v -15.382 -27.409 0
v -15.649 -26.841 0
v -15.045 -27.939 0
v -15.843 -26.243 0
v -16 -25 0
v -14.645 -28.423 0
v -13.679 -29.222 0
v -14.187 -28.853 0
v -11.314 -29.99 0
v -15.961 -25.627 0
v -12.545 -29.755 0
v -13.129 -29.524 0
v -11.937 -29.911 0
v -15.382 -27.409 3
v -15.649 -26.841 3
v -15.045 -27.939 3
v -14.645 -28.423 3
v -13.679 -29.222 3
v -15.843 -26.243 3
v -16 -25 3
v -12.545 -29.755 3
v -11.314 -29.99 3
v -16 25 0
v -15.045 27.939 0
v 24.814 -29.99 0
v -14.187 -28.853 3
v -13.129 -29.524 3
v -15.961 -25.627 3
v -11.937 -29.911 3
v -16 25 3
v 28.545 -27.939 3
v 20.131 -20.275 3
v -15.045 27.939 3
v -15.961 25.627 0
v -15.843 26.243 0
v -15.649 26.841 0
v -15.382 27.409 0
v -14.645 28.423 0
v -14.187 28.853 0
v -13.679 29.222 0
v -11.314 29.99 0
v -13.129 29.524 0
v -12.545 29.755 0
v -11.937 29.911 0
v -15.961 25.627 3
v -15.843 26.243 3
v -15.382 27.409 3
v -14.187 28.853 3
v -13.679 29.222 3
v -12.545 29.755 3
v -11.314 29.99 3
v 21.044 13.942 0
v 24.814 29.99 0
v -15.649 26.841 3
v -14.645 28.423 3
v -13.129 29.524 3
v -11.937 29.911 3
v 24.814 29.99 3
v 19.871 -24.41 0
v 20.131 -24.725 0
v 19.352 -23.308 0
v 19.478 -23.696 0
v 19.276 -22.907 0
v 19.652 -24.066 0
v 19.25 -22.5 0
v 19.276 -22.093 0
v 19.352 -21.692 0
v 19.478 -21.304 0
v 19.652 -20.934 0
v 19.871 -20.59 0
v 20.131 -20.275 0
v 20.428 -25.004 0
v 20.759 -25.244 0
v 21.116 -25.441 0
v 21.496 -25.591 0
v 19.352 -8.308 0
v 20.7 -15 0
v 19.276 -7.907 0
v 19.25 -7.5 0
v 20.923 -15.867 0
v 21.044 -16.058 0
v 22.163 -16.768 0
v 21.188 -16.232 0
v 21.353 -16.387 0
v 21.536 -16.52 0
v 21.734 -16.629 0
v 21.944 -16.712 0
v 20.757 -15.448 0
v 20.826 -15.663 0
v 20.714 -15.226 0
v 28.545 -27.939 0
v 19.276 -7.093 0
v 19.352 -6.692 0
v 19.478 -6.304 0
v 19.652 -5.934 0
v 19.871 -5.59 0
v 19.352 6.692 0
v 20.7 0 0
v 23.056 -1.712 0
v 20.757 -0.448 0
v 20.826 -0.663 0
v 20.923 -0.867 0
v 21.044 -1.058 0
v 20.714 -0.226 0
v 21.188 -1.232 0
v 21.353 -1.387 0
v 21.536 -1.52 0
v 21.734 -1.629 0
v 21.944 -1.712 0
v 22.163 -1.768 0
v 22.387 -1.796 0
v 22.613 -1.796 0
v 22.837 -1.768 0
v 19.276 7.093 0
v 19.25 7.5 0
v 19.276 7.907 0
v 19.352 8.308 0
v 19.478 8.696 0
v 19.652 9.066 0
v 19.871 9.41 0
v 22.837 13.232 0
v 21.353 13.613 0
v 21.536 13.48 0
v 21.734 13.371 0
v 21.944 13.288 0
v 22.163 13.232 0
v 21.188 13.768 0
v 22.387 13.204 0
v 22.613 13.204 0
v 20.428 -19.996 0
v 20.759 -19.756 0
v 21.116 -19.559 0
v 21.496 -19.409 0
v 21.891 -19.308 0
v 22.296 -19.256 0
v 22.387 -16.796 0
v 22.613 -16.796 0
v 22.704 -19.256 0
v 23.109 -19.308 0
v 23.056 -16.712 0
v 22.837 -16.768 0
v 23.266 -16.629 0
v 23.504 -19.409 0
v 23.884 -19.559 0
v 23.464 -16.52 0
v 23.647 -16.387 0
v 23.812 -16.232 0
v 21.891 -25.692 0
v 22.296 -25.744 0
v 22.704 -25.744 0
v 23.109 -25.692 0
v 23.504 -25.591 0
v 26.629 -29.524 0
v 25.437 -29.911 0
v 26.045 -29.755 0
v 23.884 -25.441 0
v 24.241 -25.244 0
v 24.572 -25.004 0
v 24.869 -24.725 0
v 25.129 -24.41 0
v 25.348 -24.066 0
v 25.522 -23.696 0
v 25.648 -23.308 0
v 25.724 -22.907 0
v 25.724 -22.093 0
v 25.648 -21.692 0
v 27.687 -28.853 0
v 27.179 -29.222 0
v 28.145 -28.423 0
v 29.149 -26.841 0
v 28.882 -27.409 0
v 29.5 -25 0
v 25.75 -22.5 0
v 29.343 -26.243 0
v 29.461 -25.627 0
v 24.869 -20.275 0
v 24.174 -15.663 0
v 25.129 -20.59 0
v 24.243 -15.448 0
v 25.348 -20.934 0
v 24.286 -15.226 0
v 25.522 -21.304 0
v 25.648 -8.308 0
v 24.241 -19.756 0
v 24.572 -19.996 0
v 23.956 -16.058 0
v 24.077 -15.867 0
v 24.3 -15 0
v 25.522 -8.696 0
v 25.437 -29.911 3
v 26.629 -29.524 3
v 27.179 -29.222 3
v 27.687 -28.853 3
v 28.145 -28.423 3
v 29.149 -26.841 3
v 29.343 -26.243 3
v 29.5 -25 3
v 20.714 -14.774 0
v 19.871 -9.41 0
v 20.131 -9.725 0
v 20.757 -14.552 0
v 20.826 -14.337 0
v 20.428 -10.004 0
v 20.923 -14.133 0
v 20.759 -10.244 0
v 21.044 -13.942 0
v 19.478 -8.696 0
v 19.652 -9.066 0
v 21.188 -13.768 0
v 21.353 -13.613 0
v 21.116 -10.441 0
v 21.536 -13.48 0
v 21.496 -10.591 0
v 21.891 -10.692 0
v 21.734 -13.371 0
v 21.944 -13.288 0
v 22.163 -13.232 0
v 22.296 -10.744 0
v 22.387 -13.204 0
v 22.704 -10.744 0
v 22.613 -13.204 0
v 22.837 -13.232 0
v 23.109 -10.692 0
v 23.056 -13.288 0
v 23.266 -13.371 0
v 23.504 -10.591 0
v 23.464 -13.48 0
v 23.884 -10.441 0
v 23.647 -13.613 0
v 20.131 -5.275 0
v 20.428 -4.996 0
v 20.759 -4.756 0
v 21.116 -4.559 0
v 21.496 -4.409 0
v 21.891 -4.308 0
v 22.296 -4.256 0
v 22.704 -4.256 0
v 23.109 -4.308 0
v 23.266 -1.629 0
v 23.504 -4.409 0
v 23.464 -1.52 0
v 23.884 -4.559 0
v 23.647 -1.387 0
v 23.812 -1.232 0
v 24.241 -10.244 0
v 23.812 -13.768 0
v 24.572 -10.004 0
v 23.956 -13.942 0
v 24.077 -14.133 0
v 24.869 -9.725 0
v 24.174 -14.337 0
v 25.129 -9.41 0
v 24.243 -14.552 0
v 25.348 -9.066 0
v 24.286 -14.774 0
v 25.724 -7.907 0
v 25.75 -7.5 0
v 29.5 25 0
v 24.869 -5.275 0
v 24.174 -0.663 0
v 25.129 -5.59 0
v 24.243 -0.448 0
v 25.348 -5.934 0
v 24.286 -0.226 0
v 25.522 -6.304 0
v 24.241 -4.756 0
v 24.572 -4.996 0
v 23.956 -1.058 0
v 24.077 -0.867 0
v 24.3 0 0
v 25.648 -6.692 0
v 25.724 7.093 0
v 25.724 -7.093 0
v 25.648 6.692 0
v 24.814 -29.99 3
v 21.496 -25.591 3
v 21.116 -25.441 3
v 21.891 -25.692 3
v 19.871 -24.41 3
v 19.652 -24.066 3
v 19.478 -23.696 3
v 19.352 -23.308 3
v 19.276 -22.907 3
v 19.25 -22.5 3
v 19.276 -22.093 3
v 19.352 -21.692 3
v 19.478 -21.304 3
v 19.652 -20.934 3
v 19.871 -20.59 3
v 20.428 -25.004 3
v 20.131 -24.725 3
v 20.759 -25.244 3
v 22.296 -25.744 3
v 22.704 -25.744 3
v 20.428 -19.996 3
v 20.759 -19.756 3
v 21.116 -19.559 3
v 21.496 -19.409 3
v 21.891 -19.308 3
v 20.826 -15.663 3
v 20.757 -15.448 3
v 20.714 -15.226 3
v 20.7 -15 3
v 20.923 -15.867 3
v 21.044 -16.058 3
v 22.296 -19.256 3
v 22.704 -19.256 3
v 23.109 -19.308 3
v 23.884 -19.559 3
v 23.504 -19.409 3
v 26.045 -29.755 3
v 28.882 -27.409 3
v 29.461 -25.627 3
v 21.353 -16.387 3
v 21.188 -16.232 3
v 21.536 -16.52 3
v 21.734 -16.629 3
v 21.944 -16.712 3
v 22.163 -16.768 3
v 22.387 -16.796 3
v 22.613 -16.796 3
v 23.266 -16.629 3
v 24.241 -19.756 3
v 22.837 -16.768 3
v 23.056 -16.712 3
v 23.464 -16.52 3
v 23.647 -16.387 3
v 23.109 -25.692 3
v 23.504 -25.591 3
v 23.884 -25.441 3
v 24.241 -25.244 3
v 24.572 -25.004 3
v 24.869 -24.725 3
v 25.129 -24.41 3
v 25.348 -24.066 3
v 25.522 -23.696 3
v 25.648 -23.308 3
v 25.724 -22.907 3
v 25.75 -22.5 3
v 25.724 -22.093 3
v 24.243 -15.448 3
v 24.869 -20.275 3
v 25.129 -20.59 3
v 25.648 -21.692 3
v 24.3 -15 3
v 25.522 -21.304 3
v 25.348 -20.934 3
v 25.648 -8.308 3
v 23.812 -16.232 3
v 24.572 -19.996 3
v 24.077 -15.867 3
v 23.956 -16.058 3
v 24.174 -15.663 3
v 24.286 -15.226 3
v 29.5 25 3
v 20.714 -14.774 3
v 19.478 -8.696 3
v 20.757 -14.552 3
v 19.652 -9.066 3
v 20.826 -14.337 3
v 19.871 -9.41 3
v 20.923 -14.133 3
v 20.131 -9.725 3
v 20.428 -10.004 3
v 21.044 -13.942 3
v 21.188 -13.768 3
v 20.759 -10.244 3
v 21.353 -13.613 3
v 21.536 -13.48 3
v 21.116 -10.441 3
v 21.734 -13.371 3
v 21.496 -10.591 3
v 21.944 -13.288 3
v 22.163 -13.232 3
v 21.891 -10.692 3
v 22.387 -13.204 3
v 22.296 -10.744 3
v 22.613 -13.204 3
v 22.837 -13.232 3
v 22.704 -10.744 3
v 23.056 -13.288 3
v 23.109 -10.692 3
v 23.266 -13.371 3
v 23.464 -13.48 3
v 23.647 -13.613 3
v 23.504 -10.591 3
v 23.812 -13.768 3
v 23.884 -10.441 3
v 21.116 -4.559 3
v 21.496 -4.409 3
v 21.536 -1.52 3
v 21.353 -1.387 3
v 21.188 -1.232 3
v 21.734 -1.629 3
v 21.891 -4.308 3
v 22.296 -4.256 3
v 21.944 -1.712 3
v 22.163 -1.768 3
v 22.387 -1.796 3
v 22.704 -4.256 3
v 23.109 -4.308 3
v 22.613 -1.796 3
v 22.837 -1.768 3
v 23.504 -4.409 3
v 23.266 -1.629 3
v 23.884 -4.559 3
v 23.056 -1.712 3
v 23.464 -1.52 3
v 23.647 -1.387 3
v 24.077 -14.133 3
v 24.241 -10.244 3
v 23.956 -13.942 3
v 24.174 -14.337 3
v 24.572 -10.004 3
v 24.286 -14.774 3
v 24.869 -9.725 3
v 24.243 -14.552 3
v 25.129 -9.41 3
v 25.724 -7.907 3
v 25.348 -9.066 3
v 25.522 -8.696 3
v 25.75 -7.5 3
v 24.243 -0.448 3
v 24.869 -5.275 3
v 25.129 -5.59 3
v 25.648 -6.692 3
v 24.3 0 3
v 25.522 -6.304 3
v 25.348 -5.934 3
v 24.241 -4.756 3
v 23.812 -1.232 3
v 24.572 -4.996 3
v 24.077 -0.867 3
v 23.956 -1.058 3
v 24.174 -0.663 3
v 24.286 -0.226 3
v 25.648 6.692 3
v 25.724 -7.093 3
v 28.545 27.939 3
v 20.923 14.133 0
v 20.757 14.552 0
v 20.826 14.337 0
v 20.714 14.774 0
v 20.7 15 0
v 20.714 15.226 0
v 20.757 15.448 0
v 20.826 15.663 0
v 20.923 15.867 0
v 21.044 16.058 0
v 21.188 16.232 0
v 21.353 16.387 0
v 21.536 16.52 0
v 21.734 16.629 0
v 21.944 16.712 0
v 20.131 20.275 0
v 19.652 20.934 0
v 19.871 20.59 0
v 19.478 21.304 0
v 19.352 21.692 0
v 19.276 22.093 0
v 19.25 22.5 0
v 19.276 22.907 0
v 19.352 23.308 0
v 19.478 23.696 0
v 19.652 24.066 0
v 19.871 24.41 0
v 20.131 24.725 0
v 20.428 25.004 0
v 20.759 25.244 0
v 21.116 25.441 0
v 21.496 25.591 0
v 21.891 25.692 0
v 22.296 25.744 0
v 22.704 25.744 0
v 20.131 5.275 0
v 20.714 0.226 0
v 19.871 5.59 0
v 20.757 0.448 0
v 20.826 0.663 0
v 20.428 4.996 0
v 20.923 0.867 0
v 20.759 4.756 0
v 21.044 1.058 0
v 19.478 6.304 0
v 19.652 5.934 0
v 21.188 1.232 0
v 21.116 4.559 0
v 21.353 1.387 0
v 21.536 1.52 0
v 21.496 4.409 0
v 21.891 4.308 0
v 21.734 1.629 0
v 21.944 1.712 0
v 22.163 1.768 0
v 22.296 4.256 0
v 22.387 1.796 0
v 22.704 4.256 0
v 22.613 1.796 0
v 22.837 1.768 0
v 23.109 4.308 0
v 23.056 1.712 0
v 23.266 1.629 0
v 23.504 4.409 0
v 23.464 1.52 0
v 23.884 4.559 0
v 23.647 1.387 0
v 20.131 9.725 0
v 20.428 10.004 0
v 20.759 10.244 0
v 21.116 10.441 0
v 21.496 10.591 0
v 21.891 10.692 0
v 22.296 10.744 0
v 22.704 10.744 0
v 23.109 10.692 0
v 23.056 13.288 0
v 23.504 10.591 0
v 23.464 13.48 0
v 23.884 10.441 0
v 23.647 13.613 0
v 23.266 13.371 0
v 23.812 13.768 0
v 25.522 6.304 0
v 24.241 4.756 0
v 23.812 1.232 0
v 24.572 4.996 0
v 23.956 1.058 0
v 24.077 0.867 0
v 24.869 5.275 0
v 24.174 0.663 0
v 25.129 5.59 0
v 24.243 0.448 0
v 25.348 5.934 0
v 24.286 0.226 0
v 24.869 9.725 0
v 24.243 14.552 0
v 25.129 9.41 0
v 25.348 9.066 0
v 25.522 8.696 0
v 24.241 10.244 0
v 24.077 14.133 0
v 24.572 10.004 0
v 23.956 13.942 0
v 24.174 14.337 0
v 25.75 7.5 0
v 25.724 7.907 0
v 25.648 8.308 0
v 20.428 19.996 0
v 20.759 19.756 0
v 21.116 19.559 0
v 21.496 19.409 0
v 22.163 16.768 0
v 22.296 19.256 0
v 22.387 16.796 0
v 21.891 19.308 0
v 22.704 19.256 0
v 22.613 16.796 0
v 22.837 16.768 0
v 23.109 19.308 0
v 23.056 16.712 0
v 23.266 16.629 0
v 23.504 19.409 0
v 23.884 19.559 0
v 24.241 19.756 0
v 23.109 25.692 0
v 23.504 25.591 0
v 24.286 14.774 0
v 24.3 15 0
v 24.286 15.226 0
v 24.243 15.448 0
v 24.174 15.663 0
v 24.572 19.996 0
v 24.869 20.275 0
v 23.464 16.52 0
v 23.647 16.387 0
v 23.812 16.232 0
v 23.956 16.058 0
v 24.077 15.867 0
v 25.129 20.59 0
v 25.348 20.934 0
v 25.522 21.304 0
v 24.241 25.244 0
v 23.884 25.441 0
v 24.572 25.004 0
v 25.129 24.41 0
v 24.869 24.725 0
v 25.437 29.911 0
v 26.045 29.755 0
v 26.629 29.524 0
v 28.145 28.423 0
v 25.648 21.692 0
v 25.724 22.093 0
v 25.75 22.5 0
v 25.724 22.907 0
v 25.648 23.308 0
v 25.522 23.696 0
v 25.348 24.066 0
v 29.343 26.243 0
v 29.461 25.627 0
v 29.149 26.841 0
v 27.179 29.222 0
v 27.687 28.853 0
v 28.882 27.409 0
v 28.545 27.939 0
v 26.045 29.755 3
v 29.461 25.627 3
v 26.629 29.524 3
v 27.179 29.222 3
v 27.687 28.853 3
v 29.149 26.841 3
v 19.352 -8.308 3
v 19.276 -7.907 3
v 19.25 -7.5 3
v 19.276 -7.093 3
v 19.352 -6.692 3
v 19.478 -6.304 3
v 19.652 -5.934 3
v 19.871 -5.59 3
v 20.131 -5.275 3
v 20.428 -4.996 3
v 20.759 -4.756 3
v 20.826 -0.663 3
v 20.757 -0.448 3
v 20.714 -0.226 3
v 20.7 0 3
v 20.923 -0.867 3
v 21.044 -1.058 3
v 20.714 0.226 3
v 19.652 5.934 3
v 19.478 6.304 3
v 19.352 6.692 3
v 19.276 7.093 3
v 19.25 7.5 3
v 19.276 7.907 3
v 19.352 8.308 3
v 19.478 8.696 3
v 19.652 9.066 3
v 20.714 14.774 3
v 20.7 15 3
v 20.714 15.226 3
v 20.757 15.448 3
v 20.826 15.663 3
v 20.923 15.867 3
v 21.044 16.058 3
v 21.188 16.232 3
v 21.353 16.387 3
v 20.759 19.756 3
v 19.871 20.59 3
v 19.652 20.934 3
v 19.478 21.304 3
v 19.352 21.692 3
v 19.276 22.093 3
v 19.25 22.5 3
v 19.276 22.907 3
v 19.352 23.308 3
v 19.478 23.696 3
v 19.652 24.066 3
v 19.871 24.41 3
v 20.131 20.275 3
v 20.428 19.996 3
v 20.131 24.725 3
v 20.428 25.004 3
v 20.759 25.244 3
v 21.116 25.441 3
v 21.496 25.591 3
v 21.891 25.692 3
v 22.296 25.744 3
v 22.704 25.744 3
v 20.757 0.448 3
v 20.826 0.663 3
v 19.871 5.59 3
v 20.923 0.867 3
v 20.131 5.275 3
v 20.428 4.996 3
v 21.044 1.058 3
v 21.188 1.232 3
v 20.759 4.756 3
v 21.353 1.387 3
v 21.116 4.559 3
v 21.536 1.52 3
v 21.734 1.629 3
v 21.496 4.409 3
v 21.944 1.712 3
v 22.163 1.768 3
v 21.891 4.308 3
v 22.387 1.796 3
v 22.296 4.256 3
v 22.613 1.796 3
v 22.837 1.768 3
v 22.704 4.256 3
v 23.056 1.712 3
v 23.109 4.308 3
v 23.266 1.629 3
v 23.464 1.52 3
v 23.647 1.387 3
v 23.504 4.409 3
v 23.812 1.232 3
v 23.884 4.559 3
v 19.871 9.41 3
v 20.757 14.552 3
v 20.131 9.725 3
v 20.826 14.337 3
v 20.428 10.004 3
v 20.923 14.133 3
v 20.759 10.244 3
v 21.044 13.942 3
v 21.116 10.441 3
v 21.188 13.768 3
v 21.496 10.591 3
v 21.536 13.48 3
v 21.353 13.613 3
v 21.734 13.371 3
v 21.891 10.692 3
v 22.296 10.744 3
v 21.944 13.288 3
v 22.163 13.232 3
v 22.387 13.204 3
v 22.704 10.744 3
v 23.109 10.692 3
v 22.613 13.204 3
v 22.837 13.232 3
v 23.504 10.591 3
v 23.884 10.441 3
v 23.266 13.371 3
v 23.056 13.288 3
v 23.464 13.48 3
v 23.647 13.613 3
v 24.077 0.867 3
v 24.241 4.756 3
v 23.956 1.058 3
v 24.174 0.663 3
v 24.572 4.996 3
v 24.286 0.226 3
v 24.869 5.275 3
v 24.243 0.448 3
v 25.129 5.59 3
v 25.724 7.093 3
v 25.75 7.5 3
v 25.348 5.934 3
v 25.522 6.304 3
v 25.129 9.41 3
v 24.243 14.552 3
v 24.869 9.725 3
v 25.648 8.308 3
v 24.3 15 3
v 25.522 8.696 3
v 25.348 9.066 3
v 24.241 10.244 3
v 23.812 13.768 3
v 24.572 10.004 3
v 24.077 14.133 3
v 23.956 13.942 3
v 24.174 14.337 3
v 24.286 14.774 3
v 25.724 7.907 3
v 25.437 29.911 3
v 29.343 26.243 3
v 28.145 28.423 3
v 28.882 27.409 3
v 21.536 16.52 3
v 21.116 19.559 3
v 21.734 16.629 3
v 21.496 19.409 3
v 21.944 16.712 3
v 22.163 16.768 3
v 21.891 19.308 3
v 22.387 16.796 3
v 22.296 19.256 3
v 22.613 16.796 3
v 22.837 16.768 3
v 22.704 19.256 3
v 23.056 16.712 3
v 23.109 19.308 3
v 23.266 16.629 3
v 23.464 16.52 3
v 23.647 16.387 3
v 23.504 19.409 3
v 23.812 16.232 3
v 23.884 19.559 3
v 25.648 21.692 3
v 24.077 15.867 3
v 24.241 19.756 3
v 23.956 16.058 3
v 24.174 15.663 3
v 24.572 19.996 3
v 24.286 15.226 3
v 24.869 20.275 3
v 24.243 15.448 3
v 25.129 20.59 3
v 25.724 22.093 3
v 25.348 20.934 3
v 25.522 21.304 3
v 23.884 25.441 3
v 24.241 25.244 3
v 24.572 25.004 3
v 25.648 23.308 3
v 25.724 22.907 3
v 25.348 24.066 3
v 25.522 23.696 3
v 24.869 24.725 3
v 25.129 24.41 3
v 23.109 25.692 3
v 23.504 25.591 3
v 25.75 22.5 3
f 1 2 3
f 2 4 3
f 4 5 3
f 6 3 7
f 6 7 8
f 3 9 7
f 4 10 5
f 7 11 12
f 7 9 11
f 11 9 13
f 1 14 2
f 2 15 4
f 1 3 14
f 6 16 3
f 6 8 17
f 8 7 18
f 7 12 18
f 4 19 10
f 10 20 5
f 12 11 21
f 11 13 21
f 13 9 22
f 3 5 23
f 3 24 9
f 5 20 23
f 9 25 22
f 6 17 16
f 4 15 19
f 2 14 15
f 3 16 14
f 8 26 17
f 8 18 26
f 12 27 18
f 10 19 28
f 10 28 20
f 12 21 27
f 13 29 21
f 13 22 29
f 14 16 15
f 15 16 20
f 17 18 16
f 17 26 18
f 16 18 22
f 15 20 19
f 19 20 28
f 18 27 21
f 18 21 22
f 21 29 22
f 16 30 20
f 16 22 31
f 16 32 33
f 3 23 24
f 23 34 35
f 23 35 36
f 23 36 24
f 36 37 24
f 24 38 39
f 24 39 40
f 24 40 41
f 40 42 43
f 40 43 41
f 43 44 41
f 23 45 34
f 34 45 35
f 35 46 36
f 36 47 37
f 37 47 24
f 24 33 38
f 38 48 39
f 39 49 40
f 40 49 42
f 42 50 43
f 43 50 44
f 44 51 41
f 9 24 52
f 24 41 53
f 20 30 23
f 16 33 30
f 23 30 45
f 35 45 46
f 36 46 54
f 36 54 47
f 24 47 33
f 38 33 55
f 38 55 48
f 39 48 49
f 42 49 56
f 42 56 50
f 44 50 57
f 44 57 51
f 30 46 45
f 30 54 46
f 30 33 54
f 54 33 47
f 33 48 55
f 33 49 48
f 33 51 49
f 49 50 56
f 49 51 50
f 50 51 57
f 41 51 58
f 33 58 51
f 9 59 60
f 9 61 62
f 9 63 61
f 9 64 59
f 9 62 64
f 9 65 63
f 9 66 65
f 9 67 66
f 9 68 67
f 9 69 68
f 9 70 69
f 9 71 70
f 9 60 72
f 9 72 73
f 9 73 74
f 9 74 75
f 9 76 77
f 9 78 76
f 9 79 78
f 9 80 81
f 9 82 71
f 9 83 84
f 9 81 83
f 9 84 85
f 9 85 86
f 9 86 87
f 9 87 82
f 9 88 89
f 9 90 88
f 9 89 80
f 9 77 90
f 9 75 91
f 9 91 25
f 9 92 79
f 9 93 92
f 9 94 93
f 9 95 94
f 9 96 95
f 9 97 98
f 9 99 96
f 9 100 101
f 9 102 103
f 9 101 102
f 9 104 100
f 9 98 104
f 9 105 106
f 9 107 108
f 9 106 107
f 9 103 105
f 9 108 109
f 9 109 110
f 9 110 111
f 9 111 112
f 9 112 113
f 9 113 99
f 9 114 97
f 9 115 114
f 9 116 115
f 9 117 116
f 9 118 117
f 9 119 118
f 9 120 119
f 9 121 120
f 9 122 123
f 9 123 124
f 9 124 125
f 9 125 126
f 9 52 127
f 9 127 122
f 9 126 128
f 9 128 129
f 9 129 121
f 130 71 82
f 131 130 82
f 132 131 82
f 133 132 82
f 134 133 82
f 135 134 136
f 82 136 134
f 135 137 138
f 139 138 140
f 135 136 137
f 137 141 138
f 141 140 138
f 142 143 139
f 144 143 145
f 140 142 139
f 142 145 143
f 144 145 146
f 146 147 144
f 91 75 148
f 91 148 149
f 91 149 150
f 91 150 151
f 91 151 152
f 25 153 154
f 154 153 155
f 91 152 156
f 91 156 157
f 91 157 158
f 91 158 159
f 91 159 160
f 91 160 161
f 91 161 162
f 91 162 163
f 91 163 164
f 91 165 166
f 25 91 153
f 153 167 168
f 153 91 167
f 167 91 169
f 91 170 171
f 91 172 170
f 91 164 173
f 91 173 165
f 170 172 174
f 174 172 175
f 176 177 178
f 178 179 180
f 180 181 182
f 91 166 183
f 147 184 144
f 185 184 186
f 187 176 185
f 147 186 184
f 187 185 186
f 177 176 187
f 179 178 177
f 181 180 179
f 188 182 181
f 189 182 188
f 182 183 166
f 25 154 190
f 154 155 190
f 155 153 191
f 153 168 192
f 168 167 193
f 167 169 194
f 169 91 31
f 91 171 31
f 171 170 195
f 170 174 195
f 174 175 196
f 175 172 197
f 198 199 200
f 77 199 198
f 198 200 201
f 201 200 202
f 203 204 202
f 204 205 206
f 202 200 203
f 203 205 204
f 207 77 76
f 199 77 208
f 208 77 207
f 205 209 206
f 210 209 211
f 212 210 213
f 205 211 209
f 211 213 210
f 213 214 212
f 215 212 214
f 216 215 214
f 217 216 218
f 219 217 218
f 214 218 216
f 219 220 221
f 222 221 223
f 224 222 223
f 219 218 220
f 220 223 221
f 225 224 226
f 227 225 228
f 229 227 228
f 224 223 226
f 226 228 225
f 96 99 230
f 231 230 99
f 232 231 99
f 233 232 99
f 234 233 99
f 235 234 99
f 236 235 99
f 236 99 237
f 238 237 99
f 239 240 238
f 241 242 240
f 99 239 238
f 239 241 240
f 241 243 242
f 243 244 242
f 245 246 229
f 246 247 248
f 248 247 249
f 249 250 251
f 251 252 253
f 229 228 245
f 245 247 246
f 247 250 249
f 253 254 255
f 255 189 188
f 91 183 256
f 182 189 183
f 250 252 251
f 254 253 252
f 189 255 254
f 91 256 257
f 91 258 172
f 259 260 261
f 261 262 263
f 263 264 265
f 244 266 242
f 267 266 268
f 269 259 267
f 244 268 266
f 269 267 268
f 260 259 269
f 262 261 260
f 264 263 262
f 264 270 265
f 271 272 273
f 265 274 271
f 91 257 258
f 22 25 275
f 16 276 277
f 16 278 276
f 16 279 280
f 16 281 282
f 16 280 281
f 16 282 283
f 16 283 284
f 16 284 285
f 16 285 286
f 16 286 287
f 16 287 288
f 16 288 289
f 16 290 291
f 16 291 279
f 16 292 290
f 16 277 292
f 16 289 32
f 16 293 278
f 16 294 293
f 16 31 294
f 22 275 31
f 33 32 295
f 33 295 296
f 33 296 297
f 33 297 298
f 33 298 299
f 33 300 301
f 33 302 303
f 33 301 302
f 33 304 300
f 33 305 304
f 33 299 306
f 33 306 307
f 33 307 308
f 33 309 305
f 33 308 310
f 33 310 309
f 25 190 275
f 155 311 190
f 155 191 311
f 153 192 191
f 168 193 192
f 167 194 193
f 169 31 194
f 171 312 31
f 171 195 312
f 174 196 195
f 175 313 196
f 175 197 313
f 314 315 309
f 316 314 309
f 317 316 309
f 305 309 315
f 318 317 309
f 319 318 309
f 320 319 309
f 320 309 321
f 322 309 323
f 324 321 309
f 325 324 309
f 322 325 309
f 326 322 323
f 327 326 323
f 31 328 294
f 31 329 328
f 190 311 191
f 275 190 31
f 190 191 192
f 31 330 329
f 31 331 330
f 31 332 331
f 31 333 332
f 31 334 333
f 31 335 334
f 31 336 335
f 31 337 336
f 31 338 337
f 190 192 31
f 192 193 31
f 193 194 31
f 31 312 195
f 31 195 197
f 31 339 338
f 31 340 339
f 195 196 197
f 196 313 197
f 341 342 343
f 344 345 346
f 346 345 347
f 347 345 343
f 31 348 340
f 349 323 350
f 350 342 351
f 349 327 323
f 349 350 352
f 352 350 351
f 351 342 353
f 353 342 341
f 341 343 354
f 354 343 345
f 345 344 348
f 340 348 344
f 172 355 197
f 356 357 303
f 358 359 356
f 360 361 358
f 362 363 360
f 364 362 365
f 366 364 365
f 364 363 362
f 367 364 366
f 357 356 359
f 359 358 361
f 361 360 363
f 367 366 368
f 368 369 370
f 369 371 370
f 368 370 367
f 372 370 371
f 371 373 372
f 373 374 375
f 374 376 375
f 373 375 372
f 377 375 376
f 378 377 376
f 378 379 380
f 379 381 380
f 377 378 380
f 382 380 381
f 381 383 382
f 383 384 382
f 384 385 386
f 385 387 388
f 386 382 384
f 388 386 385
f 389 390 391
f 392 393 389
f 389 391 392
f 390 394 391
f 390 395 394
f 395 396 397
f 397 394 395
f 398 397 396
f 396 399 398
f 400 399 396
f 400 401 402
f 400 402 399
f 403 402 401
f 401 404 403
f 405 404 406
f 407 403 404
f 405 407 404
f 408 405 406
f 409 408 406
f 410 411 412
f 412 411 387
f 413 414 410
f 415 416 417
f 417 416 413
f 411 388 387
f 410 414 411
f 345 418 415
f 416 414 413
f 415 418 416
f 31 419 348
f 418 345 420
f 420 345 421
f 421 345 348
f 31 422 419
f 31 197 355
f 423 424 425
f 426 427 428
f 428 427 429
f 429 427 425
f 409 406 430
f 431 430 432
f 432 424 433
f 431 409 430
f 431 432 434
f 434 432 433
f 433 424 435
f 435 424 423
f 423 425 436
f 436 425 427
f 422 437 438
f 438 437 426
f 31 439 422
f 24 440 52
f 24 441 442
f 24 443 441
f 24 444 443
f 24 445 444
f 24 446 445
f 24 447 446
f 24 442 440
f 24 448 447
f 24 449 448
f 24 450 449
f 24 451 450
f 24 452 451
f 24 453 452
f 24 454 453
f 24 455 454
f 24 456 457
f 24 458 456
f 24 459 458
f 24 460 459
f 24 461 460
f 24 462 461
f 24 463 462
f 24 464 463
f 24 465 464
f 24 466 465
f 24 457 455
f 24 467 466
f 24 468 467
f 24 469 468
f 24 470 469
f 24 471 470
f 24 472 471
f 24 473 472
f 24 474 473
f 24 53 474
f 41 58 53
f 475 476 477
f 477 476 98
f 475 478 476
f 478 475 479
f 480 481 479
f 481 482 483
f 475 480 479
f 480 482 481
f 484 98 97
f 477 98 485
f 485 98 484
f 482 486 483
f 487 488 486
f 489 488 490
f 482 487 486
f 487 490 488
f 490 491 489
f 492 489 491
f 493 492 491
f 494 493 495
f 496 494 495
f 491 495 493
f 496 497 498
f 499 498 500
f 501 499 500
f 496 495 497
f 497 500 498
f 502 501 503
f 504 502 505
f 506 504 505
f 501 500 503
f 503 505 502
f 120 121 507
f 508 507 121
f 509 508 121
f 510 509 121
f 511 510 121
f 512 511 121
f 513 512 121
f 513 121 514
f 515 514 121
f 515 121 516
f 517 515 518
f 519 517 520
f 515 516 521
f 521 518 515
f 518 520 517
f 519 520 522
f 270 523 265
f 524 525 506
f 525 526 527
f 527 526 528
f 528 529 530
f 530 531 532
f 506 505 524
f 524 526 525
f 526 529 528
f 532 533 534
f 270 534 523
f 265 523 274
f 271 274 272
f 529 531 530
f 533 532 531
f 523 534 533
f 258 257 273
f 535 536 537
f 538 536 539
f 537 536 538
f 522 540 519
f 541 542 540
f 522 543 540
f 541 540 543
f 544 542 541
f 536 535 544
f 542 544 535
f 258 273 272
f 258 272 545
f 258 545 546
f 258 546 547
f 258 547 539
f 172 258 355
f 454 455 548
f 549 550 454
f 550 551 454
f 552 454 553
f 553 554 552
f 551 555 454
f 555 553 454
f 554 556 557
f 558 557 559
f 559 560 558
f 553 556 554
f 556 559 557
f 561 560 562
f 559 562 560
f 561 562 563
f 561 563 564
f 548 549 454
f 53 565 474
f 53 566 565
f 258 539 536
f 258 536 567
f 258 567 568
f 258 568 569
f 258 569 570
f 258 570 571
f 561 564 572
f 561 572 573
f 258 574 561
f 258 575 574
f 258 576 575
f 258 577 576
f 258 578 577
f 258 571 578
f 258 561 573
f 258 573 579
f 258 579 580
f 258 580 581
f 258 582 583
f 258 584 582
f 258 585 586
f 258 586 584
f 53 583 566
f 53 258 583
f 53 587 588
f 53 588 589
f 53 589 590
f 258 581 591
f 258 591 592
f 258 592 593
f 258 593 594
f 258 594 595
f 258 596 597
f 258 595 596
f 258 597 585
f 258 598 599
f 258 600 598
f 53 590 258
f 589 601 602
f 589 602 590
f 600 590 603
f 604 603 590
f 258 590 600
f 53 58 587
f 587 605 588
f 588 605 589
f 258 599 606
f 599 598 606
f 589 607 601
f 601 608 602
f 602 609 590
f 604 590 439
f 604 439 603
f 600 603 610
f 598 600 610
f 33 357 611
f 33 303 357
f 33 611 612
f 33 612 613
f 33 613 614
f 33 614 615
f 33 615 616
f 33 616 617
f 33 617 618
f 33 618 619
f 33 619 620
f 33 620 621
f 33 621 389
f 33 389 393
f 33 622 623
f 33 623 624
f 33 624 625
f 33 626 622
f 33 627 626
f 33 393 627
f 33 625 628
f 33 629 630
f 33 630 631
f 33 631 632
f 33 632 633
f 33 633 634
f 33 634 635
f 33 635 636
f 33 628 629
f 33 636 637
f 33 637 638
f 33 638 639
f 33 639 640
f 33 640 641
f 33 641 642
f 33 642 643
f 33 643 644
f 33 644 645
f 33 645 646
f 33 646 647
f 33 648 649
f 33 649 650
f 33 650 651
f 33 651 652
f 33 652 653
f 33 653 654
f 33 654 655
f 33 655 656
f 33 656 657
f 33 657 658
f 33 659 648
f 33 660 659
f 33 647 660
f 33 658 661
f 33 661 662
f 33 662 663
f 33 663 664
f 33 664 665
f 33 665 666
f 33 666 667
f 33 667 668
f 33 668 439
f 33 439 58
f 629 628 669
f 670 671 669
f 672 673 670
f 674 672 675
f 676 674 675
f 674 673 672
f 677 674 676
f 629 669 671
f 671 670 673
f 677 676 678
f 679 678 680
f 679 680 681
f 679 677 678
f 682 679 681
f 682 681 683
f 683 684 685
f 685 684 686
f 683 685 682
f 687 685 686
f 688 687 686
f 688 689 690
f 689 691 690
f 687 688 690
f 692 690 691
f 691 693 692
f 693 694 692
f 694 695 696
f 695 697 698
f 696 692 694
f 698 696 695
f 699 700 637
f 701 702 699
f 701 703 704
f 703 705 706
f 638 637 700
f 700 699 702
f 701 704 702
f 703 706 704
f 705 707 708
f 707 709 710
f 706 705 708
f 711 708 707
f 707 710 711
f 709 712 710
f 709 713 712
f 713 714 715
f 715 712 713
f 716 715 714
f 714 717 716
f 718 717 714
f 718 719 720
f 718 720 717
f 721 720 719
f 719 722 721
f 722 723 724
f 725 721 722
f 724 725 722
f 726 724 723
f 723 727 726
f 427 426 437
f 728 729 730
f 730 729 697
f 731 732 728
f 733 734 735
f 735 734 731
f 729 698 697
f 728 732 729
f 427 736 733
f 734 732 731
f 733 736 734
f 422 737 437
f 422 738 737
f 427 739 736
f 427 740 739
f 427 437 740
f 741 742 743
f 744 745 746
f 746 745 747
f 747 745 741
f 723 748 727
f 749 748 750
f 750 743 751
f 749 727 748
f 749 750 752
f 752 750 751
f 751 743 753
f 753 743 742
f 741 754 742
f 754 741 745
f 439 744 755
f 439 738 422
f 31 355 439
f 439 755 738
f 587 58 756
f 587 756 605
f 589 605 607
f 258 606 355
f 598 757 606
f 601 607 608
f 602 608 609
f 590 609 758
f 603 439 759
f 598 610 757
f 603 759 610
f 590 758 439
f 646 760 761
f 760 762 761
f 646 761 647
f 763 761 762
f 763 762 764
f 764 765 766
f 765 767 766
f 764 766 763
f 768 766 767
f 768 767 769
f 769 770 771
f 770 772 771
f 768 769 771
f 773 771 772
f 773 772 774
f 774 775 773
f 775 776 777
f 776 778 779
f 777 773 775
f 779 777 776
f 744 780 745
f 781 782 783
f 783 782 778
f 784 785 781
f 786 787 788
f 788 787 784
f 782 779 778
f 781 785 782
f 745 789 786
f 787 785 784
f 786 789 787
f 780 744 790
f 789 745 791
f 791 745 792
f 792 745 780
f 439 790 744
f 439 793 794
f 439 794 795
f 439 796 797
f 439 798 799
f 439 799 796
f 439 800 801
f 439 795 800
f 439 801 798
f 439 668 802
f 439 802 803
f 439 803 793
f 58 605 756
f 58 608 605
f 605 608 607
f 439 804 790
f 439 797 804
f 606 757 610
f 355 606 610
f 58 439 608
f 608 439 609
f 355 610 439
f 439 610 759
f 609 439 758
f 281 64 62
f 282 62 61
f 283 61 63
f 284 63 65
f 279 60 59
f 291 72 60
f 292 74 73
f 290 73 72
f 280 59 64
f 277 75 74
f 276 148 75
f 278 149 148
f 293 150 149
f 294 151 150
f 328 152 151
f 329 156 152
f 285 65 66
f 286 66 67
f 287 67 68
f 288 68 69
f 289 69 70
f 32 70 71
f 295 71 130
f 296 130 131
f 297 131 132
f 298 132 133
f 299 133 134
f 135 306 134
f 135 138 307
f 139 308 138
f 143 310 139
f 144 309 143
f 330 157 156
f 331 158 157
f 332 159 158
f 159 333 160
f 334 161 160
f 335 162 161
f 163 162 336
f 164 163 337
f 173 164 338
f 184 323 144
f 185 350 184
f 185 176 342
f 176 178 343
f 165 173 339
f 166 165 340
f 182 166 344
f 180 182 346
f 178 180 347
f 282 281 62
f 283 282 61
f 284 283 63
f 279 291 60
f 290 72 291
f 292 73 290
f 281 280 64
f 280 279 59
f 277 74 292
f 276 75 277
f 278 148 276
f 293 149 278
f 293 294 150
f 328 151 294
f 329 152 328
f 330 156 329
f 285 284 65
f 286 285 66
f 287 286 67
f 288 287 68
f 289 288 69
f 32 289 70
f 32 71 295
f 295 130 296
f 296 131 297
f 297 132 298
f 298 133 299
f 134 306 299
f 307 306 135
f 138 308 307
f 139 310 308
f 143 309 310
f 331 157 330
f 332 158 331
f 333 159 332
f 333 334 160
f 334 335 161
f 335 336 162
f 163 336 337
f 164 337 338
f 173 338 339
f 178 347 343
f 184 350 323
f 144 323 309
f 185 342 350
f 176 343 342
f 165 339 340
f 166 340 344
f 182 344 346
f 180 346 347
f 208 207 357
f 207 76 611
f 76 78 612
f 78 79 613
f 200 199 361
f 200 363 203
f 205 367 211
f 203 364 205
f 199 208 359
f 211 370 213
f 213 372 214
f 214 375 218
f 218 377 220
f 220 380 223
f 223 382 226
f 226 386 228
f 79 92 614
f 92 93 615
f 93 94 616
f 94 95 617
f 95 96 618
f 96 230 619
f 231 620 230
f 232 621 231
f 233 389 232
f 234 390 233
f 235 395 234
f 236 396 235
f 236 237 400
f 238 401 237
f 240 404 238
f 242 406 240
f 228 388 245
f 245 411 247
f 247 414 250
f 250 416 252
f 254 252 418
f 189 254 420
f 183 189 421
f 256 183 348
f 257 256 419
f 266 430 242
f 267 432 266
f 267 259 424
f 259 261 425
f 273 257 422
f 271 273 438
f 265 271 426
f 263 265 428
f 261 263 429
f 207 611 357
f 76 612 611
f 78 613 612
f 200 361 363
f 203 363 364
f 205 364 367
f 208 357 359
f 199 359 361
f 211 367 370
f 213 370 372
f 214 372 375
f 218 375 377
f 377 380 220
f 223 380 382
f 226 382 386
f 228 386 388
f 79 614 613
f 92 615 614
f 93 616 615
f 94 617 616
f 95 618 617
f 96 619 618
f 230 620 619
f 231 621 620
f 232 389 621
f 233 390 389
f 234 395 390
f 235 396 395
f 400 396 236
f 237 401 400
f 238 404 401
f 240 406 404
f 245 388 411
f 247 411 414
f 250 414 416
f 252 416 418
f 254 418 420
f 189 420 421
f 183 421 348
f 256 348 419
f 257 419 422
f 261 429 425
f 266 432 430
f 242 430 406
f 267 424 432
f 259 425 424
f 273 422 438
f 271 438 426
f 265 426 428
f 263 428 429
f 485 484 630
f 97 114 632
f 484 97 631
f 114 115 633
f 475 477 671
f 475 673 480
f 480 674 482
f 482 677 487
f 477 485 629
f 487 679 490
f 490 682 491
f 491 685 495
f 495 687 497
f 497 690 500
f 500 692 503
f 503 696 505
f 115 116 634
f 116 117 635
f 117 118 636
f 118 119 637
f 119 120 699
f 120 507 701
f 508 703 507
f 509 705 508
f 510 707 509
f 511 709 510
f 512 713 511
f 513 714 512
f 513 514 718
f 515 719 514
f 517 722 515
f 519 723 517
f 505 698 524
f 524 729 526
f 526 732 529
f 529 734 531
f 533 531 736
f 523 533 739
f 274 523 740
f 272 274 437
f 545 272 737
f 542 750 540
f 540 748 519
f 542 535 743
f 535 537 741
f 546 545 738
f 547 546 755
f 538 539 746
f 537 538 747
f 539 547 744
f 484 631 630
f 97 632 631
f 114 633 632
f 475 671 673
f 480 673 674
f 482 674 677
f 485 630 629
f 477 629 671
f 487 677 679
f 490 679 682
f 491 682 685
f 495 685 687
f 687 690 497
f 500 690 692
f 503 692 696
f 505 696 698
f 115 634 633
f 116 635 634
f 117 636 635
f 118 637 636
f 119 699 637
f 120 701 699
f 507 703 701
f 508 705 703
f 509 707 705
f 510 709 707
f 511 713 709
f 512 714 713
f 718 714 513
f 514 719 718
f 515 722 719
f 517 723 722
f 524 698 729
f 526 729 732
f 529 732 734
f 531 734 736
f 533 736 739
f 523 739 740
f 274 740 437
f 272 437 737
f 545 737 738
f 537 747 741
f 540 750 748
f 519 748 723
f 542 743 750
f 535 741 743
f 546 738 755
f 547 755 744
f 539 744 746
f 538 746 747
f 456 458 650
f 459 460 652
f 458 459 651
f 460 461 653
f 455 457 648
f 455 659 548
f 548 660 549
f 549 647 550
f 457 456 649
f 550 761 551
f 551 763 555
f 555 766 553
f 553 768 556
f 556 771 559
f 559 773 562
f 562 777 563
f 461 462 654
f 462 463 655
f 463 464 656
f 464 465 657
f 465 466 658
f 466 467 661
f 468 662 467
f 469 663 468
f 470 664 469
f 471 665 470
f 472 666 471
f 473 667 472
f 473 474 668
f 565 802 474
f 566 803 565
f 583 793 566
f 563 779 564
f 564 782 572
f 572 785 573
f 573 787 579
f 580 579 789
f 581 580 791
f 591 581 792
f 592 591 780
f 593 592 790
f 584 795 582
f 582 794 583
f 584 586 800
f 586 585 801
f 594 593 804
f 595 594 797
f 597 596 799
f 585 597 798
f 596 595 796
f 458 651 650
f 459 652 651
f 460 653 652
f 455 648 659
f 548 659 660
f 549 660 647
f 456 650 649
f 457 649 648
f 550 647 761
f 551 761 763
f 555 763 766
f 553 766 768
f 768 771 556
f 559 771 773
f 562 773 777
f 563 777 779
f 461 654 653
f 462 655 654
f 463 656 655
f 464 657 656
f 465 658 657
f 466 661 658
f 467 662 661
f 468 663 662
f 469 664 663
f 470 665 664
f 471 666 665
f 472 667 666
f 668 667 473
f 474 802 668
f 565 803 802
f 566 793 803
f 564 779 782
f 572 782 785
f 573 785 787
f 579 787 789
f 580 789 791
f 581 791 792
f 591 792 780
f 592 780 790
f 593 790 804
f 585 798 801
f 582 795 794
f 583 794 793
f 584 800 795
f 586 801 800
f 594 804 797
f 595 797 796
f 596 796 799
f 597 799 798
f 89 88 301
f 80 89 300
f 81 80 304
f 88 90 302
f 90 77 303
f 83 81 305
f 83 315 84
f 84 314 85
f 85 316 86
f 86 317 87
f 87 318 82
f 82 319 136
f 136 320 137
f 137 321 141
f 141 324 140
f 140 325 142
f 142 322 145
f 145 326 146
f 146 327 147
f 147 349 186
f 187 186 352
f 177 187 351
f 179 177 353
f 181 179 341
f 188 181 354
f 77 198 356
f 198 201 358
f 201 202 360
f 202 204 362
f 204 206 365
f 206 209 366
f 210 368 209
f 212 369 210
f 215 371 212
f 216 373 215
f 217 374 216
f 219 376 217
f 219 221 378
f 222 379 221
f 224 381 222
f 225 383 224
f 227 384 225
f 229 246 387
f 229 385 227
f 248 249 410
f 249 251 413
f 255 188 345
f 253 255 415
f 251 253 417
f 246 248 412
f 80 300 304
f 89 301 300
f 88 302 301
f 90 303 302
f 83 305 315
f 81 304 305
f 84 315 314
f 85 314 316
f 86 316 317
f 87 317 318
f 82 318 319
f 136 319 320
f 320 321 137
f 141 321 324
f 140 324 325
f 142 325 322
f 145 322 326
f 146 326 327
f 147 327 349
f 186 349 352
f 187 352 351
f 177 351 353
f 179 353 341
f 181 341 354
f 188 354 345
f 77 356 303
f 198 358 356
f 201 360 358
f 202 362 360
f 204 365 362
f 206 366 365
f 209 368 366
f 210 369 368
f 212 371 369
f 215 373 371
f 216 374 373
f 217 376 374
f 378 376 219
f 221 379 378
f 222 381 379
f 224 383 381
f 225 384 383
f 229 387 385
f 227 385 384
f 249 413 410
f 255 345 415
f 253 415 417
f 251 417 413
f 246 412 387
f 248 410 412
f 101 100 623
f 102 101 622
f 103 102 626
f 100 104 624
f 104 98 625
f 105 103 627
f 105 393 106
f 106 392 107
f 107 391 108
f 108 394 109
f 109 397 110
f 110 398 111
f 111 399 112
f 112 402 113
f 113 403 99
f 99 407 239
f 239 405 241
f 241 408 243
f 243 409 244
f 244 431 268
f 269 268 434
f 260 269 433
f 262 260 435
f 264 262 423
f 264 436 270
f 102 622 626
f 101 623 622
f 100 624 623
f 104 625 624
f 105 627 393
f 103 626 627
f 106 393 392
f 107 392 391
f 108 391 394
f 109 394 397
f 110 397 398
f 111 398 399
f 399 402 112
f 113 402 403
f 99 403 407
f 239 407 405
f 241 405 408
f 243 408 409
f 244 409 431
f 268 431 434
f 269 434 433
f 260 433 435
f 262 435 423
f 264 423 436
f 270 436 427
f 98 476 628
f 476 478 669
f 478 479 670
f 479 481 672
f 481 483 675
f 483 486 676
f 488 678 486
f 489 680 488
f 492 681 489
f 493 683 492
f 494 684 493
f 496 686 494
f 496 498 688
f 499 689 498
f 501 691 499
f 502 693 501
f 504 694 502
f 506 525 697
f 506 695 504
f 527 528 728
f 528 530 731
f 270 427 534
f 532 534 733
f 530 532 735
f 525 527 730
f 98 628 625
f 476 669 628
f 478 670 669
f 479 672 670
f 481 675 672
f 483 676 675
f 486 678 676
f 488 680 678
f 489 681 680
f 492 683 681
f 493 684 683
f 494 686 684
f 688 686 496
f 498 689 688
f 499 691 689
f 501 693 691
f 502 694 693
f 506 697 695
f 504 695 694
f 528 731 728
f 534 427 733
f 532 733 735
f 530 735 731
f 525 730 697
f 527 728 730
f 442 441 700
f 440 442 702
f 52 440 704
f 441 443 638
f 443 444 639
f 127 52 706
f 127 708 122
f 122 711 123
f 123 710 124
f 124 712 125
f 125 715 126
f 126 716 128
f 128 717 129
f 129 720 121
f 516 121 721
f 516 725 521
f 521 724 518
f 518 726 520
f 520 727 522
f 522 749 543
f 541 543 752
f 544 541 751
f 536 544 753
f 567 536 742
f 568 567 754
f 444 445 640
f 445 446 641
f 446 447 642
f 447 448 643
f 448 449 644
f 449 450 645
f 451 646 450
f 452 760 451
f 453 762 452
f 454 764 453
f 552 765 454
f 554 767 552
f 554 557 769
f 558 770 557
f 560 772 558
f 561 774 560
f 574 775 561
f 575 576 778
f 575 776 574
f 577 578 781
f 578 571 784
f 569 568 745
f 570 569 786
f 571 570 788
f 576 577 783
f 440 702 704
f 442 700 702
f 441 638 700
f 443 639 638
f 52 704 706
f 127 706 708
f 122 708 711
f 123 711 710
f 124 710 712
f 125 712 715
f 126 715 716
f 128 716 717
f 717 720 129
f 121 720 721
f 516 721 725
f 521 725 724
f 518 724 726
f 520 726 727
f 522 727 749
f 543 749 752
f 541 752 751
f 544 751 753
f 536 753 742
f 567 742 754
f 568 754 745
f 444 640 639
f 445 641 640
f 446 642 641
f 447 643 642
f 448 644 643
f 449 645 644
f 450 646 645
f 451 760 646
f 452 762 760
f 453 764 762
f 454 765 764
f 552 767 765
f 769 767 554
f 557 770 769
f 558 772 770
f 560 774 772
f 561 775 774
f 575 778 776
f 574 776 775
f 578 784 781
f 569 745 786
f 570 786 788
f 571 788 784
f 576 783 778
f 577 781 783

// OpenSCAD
$fn = 50;

difference() {
	union() {
		translate(v = [6.75, 0.0, 0]) {
			hull() {
				translate(v = [-17.75, 25.0, 0]) {
					cylinder(h = 3, r = 5);
				}
				translate(v = [17.75, 25.0, 0]) {
					cylinder(h = 3, r = 5);
				}
				translate(v = [-17.75, -25.0, 0]) {
					cylinder(h = 3, r = 5);
				}
				translate(v = [17.75, -25.0, 0]) {
					cylinder(h = 3, r = 5);
				}
			}
		}
	}
	union() {
		translate(v = [22.5, -22.5, -1]) {
			cylinder(h = 5, r = 3.25);
		}
		translate(v = [22.5, -7.5, -1]) {
			cylinder(h = 5, r = 3.25);
		}
		translate(v = [22.5, 7.5, -1]) {
			cylinder(h = 5, r = 3.25);
		}
		translate(v = [22.5, 22.5, -1]) {
			cylinder(h = 5, r = 3.25);
		}
		translate(v = [22.5, -15.0, -1]) {
			cylinder(h = 5, r = 1.8);
		}
		translate(v = [22.5, 0.0, -1]) {
			cylinder(h = 5, r = 1.8);
		}
		translate(v = [22.5, 15.0, -1]) {
			cylinder(h = 5, r = 1.8);
		}
	}
}
